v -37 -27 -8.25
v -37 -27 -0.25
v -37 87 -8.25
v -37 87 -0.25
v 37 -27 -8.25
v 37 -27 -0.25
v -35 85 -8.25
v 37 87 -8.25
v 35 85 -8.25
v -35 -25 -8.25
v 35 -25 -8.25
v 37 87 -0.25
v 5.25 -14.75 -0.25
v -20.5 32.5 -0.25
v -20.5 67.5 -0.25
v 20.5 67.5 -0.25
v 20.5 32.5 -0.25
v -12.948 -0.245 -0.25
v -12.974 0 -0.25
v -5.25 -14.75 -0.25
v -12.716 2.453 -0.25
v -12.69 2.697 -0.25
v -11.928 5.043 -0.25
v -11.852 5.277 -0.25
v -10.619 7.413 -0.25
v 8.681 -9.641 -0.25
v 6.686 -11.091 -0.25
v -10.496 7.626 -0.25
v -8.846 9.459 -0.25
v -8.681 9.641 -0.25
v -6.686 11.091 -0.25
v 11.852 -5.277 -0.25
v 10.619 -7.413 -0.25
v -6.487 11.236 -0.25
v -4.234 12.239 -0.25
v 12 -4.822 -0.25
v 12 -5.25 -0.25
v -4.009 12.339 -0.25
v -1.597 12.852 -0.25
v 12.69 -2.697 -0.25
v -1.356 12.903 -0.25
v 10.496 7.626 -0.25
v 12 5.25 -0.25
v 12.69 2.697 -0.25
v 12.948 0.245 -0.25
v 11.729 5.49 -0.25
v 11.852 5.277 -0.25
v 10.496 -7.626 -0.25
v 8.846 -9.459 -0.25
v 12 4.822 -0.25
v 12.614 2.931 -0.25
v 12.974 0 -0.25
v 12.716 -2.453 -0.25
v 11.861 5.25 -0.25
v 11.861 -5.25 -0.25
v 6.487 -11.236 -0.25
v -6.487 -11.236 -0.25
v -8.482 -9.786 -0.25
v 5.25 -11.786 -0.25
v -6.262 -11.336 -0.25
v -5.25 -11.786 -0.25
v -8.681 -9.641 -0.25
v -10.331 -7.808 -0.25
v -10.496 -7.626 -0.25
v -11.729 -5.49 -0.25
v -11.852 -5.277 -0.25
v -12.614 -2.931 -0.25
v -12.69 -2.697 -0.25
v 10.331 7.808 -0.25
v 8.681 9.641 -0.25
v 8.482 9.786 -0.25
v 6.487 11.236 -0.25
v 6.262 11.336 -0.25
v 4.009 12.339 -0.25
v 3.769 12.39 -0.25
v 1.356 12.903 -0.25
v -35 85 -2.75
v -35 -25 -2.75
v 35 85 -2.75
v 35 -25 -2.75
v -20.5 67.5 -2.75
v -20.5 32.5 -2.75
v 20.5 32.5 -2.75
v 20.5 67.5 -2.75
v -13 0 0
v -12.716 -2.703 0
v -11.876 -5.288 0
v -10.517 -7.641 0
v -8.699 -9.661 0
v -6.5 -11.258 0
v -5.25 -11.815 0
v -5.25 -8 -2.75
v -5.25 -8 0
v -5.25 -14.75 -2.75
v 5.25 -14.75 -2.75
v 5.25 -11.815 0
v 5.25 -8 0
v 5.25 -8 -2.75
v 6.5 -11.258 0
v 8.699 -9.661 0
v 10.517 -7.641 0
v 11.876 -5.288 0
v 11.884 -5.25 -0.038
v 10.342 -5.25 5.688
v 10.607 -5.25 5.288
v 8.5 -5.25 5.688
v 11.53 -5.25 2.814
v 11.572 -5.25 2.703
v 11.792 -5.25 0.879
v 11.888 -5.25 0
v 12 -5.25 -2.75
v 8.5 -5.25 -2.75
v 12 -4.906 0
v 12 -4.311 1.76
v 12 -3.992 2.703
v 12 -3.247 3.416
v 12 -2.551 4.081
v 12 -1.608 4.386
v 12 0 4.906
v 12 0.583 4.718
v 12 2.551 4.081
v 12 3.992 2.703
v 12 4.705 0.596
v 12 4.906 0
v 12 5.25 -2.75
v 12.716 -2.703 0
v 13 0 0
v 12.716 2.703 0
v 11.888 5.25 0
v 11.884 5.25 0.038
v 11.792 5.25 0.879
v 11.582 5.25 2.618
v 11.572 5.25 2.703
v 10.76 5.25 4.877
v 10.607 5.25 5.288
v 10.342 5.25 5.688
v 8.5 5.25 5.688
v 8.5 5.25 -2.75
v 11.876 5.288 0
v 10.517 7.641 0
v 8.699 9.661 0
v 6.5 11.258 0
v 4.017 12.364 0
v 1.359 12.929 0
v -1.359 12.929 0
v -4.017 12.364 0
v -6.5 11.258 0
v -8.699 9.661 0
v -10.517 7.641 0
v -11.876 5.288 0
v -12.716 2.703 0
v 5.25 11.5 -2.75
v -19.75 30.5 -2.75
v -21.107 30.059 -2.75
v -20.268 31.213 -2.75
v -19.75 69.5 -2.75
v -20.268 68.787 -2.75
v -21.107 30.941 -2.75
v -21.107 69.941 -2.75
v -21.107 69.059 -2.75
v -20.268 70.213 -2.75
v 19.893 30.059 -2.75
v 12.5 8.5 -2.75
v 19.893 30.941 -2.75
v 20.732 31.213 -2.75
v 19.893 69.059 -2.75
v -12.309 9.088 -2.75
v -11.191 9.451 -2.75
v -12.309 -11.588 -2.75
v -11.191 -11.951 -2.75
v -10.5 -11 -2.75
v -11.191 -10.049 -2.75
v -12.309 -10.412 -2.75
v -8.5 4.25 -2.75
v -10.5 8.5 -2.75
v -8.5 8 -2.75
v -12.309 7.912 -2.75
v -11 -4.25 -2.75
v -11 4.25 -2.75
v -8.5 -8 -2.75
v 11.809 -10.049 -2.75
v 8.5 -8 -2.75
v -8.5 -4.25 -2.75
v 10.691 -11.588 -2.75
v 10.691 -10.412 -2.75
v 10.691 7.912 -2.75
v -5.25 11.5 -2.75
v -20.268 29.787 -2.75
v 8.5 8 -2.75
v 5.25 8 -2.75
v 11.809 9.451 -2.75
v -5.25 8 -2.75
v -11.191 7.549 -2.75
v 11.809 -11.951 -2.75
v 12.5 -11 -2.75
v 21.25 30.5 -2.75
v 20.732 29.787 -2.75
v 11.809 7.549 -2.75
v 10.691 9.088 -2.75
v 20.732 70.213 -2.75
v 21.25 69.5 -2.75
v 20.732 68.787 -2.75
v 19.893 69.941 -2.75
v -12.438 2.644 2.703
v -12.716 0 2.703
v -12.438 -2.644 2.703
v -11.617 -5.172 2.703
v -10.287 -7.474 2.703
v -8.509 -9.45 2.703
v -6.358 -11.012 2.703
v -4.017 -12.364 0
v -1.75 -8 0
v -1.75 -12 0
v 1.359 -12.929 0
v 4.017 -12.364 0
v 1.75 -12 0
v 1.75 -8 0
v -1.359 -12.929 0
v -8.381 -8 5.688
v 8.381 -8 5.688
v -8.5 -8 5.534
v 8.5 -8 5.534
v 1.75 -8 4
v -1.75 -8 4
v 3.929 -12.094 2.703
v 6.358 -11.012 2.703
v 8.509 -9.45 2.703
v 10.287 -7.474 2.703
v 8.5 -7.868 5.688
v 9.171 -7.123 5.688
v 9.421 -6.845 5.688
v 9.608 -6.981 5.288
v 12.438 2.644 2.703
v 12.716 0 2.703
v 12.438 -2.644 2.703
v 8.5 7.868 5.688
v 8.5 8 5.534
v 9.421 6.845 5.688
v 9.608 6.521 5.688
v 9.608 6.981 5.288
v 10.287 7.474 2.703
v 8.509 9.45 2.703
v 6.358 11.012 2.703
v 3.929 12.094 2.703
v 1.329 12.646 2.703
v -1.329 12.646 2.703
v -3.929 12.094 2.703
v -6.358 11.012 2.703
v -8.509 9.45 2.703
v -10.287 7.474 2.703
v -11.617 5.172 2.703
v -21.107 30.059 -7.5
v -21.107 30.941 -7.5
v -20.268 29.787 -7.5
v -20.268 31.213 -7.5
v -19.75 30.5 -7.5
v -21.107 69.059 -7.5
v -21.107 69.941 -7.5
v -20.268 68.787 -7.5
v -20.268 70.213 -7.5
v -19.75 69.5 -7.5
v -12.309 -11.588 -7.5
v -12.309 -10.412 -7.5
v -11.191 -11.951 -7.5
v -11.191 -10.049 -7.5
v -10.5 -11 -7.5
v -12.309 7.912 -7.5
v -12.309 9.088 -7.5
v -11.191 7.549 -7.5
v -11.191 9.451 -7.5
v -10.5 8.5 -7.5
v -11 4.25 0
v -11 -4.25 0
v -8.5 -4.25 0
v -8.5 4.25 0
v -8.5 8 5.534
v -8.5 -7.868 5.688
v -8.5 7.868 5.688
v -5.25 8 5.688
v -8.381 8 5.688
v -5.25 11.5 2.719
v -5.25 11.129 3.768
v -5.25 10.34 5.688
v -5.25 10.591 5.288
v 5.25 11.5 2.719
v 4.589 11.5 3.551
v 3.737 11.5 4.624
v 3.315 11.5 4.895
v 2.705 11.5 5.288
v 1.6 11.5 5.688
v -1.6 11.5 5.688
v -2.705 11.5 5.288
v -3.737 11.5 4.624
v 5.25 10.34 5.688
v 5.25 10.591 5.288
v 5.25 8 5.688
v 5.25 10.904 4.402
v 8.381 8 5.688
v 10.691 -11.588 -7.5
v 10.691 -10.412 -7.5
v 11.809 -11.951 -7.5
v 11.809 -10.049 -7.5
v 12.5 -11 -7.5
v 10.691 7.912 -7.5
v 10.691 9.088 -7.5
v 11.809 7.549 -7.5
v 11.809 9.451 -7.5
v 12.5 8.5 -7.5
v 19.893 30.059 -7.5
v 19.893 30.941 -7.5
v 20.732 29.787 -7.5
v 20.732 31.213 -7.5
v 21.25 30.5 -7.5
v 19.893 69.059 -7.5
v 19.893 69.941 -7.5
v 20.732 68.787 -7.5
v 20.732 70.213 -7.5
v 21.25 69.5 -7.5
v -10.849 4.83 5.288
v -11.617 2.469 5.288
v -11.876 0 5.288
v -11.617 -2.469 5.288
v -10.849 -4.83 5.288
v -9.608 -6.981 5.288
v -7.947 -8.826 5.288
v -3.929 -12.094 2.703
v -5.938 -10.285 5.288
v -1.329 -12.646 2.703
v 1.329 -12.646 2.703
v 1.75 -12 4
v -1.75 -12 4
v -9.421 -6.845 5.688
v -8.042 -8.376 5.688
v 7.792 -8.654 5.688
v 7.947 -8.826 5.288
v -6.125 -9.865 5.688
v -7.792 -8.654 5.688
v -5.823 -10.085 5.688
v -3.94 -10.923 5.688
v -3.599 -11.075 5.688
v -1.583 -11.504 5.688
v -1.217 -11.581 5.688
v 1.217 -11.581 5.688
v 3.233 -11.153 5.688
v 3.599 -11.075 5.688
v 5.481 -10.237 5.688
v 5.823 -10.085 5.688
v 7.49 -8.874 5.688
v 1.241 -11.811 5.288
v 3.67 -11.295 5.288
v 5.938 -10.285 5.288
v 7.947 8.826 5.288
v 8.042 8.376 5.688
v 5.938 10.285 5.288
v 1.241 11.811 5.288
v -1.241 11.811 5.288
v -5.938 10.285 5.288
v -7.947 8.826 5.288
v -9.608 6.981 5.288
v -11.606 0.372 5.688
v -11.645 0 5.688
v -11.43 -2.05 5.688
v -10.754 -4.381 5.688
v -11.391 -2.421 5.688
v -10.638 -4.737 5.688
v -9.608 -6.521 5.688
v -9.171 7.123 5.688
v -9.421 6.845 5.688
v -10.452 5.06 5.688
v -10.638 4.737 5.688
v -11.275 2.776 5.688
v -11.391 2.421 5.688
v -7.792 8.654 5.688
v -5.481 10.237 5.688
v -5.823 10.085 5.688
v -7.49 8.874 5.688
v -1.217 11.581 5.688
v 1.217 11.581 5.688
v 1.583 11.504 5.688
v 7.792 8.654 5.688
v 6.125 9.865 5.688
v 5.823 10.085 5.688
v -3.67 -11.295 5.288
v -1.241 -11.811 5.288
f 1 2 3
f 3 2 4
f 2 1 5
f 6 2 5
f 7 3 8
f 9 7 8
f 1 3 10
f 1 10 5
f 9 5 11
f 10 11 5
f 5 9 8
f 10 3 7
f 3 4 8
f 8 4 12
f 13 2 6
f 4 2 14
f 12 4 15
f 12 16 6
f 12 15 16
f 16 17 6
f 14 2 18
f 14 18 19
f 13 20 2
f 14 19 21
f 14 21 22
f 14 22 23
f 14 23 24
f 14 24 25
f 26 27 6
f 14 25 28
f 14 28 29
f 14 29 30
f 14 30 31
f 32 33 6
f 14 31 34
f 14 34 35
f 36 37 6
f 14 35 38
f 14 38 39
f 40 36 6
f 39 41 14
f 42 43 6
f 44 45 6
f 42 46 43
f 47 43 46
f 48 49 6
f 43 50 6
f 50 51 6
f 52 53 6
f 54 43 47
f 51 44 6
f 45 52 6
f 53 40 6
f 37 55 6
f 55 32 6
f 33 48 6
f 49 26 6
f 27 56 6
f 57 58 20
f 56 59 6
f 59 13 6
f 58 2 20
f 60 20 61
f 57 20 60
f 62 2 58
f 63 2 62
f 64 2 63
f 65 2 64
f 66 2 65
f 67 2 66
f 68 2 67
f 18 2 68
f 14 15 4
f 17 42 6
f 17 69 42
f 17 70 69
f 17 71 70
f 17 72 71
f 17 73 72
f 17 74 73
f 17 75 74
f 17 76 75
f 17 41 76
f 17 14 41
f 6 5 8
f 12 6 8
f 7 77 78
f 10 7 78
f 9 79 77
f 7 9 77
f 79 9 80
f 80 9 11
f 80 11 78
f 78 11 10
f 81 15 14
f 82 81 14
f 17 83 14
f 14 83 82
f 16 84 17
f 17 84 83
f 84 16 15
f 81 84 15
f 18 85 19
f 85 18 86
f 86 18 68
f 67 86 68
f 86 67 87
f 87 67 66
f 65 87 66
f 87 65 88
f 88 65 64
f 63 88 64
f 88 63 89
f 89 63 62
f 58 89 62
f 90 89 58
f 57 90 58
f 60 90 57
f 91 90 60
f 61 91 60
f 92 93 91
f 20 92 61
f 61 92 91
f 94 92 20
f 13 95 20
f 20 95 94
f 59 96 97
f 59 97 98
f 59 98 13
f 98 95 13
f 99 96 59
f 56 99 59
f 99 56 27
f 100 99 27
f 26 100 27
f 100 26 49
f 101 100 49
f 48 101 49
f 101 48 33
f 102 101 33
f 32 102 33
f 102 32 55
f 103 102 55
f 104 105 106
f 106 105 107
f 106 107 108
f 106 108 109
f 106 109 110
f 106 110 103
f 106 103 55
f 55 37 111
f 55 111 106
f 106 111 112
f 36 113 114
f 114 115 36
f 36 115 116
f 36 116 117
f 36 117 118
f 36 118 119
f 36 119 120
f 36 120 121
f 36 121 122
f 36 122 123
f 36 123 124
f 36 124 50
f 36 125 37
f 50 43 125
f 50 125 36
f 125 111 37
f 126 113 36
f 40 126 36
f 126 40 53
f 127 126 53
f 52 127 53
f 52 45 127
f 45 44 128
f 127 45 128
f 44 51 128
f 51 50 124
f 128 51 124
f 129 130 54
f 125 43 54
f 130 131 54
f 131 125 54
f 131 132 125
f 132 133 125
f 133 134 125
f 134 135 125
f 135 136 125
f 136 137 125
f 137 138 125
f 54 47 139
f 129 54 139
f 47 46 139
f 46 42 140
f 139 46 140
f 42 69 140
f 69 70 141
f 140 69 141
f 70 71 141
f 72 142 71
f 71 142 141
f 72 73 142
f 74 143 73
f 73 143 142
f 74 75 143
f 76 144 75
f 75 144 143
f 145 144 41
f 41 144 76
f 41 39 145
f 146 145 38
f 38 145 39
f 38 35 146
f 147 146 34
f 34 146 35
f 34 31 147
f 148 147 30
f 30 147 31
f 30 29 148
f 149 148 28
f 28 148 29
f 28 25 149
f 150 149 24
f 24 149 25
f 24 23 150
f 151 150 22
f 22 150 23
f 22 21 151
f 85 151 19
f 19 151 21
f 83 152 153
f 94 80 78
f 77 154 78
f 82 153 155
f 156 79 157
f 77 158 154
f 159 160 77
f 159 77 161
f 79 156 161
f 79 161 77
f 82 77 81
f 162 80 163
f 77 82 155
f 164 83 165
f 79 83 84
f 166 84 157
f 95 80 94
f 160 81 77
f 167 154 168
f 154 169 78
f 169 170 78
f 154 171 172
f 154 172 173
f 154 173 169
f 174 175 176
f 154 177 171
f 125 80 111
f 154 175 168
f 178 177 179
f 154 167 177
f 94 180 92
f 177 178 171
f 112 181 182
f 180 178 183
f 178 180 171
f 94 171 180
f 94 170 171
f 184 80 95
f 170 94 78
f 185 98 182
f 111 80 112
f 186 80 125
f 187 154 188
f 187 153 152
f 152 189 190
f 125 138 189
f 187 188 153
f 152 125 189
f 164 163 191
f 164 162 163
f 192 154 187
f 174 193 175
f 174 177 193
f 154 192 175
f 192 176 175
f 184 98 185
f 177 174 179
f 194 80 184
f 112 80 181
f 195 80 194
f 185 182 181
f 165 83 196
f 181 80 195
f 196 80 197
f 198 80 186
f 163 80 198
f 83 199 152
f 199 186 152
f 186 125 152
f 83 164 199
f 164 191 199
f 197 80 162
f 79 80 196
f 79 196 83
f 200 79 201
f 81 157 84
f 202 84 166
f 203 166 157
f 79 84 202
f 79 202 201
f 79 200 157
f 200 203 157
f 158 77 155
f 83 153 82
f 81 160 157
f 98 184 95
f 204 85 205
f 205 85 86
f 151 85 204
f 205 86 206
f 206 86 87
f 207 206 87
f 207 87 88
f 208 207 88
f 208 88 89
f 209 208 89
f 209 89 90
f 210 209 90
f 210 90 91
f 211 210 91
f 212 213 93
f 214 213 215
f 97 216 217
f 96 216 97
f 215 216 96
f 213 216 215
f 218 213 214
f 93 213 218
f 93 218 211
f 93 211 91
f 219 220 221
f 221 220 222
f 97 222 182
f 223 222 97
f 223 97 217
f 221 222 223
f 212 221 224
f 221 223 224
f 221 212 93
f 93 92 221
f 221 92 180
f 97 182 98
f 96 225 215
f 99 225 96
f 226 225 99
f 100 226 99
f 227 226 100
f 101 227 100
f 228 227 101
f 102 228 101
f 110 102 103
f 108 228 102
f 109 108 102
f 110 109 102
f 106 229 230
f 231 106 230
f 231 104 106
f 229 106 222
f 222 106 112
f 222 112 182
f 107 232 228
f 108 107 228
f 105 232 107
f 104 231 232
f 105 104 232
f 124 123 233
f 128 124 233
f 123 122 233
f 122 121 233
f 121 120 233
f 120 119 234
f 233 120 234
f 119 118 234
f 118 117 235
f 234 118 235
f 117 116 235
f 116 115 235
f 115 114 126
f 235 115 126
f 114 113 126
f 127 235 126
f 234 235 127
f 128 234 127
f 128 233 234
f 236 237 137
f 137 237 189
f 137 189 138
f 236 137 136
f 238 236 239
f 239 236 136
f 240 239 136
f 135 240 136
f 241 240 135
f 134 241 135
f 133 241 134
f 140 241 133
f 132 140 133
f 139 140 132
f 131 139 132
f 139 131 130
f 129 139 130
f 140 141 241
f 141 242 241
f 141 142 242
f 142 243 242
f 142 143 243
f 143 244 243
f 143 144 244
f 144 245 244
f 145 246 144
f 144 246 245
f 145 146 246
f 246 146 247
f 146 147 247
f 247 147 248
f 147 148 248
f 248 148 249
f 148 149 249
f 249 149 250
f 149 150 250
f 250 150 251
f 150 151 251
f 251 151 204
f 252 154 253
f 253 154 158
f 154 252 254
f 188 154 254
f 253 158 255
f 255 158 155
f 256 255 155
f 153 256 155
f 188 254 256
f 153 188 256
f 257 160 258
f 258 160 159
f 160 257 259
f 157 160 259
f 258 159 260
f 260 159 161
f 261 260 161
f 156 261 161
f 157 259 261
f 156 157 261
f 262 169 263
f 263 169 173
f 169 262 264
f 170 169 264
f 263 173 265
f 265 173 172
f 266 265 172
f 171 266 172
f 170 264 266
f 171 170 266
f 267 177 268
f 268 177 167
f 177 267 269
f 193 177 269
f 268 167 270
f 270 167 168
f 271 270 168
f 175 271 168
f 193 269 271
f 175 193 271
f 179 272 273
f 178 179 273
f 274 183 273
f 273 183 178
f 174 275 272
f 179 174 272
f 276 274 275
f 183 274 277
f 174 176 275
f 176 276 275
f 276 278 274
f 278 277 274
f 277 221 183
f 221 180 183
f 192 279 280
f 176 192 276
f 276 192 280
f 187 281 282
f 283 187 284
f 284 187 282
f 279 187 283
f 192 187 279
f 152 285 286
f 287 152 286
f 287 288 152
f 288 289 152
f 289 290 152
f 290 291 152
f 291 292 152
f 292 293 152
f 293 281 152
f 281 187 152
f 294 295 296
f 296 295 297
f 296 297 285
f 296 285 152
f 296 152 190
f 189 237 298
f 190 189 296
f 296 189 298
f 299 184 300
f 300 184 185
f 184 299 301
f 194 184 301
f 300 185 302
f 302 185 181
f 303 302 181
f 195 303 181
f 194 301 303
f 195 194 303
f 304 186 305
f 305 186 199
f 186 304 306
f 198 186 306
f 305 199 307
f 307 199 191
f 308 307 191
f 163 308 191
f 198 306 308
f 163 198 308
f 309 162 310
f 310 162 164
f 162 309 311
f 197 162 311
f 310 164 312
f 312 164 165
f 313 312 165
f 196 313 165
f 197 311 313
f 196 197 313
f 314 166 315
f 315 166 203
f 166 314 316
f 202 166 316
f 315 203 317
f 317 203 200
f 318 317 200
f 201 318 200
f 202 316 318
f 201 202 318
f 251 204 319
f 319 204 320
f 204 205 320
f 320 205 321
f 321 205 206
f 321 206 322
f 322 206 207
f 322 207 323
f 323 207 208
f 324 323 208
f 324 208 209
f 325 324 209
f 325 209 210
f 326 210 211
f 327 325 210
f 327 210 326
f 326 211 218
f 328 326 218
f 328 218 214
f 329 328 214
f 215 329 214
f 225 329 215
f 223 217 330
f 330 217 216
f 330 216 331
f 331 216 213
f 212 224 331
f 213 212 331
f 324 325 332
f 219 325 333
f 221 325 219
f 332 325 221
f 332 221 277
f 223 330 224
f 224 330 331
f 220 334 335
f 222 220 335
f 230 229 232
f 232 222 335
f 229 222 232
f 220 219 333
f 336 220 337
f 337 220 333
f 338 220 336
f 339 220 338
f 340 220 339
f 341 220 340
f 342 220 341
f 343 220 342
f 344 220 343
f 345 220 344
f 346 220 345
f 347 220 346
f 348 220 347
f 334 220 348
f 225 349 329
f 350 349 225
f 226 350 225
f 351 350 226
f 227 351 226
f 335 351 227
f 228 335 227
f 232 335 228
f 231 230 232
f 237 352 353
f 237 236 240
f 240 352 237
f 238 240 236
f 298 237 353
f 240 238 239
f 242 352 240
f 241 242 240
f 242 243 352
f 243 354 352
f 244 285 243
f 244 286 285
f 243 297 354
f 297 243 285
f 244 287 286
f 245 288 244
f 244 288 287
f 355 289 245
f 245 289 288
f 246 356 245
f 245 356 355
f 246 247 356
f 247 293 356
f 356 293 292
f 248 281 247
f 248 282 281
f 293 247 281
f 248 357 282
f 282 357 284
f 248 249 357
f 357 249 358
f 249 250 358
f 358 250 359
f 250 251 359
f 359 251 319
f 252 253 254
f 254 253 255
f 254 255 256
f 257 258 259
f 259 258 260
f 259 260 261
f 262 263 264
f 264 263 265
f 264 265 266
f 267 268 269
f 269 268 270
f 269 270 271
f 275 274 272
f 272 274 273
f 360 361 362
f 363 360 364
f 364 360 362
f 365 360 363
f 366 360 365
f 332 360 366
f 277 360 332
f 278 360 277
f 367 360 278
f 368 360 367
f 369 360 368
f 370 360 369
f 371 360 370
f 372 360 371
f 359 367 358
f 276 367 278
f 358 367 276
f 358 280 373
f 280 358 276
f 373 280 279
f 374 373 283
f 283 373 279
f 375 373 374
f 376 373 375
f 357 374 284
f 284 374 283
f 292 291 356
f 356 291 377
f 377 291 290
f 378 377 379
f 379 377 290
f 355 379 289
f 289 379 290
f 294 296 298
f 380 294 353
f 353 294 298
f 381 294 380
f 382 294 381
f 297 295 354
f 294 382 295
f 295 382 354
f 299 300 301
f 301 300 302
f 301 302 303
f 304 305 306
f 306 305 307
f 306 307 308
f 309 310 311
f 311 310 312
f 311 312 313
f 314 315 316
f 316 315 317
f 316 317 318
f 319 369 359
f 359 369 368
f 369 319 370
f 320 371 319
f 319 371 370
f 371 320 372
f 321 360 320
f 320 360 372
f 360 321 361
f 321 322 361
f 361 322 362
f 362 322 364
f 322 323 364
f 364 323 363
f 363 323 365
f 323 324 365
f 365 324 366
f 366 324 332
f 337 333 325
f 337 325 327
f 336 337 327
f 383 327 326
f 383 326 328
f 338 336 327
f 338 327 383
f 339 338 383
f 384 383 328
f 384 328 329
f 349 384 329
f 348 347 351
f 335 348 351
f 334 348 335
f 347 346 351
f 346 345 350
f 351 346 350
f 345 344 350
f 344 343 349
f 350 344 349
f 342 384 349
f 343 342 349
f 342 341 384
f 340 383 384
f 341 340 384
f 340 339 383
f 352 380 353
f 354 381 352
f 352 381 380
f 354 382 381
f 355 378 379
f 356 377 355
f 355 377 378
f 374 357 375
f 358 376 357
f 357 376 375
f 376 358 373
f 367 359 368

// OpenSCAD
module front_case()
{
   module front() {
      union() {
         difference() {
            translate([0, 30, -4.25])
               cube([74, 114, 8], center = true);
            translate([0, 30, -5.75])
               cube([70, 110, 6], center = true);
         }
         translate([0, 50, -5]) union() {
            translate([-20.5, -19.5, 0])
               cylinder(h = 5, r1 = 0.75, r2 = 0.75, center = true);
            translate([-20.5, 19.5, 0])
               cylinder(h = 5, r1 = 0.75, r2 = 0.75, center = true);
            translate([20.5, -19.5, 0])
               cylinder(h = 5, r1 = 0.75, r2 = 0.75, center = true);
            translate([20.5, 19.5, 0])
               cylinder(h = 5, r1 = 0.75, r2 = 0.75, center = true);
         }
         intersection() {
            sphere(r = 13, center = true);
            translate([0, 0, 0.75 * 26/8])
               cube([26, 26, 26/4], center = true);
         }
         translate([0, 0, -5]) union() {
            translate([-11.5, 8.5, 0])
               cylinder(h = 5, r1 = 1, r2 = 1, center = true);
            translate([-11.5, -11, 0])
               cylinder(h = 5, r1 = 1, r2 = 1, center = true);
            translate([11.5, 8.5, 0])
               cylinder(h = 5, r1 = 1, r2 = 1, center = true);
            translate([11.5, -11, 0])
               cylinder(h = 5, r1 = 1, r2 = 1, center = true);
         }
      }
   }

   module lcd() {
      cube([41, 35, 5], center = true);
   }

   module joystick() {
      union() {
         cube([17, 16, 12], center = true);
         translate([10, 0, 0])
            cube([4, 10.5, 12], center = true);
         translate([0, 9.5, 0])
            cube([10.5, 4, 12], center = true);
         translate([0, -11, -3])
            cube([10.5, 7.5, 6], center = true);
         translate([-9.5, 0, -3])
            cube([3, 8.5, 6], center = true);
         translate([0, -9.5, -1])
            cube([3.5, 5, 10], center = true);
      }
   }

   module components() {
      union() {
         translate([0, 50, -2])
            lcd();
         joystick();
      }
   }

   difference() {
      front();
      components();
   }
/*
		translate([0, 0, 5])
			cylinder(h = 50, r1 = 20, r2 = 5, center = true);
*/
}

front_case();
